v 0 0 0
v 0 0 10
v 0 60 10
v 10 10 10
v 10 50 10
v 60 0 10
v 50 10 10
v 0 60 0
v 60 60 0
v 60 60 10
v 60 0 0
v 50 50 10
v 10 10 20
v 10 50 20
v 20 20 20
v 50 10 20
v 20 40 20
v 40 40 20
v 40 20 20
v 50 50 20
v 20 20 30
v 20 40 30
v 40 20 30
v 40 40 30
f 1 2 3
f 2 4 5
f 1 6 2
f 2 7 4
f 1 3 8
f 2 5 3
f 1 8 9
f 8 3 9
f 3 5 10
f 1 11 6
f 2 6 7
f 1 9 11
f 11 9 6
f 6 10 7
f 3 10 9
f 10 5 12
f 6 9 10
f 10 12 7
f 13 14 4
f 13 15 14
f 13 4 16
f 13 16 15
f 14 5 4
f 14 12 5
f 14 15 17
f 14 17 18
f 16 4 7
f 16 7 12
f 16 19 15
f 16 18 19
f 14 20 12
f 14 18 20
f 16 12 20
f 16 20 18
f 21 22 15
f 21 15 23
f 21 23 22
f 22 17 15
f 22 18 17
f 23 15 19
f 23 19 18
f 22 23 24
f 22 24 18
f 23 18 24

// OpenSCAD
// 3段の階段状ピラミッド
translate([0, 0, 0])
    cube([60, 60, 10], center = false);

translate([10, 10, 10])
    cube([40, 40, 10], center = false);

translate([20, 20, 20])
    cube([20, 20, 10], center = false);
